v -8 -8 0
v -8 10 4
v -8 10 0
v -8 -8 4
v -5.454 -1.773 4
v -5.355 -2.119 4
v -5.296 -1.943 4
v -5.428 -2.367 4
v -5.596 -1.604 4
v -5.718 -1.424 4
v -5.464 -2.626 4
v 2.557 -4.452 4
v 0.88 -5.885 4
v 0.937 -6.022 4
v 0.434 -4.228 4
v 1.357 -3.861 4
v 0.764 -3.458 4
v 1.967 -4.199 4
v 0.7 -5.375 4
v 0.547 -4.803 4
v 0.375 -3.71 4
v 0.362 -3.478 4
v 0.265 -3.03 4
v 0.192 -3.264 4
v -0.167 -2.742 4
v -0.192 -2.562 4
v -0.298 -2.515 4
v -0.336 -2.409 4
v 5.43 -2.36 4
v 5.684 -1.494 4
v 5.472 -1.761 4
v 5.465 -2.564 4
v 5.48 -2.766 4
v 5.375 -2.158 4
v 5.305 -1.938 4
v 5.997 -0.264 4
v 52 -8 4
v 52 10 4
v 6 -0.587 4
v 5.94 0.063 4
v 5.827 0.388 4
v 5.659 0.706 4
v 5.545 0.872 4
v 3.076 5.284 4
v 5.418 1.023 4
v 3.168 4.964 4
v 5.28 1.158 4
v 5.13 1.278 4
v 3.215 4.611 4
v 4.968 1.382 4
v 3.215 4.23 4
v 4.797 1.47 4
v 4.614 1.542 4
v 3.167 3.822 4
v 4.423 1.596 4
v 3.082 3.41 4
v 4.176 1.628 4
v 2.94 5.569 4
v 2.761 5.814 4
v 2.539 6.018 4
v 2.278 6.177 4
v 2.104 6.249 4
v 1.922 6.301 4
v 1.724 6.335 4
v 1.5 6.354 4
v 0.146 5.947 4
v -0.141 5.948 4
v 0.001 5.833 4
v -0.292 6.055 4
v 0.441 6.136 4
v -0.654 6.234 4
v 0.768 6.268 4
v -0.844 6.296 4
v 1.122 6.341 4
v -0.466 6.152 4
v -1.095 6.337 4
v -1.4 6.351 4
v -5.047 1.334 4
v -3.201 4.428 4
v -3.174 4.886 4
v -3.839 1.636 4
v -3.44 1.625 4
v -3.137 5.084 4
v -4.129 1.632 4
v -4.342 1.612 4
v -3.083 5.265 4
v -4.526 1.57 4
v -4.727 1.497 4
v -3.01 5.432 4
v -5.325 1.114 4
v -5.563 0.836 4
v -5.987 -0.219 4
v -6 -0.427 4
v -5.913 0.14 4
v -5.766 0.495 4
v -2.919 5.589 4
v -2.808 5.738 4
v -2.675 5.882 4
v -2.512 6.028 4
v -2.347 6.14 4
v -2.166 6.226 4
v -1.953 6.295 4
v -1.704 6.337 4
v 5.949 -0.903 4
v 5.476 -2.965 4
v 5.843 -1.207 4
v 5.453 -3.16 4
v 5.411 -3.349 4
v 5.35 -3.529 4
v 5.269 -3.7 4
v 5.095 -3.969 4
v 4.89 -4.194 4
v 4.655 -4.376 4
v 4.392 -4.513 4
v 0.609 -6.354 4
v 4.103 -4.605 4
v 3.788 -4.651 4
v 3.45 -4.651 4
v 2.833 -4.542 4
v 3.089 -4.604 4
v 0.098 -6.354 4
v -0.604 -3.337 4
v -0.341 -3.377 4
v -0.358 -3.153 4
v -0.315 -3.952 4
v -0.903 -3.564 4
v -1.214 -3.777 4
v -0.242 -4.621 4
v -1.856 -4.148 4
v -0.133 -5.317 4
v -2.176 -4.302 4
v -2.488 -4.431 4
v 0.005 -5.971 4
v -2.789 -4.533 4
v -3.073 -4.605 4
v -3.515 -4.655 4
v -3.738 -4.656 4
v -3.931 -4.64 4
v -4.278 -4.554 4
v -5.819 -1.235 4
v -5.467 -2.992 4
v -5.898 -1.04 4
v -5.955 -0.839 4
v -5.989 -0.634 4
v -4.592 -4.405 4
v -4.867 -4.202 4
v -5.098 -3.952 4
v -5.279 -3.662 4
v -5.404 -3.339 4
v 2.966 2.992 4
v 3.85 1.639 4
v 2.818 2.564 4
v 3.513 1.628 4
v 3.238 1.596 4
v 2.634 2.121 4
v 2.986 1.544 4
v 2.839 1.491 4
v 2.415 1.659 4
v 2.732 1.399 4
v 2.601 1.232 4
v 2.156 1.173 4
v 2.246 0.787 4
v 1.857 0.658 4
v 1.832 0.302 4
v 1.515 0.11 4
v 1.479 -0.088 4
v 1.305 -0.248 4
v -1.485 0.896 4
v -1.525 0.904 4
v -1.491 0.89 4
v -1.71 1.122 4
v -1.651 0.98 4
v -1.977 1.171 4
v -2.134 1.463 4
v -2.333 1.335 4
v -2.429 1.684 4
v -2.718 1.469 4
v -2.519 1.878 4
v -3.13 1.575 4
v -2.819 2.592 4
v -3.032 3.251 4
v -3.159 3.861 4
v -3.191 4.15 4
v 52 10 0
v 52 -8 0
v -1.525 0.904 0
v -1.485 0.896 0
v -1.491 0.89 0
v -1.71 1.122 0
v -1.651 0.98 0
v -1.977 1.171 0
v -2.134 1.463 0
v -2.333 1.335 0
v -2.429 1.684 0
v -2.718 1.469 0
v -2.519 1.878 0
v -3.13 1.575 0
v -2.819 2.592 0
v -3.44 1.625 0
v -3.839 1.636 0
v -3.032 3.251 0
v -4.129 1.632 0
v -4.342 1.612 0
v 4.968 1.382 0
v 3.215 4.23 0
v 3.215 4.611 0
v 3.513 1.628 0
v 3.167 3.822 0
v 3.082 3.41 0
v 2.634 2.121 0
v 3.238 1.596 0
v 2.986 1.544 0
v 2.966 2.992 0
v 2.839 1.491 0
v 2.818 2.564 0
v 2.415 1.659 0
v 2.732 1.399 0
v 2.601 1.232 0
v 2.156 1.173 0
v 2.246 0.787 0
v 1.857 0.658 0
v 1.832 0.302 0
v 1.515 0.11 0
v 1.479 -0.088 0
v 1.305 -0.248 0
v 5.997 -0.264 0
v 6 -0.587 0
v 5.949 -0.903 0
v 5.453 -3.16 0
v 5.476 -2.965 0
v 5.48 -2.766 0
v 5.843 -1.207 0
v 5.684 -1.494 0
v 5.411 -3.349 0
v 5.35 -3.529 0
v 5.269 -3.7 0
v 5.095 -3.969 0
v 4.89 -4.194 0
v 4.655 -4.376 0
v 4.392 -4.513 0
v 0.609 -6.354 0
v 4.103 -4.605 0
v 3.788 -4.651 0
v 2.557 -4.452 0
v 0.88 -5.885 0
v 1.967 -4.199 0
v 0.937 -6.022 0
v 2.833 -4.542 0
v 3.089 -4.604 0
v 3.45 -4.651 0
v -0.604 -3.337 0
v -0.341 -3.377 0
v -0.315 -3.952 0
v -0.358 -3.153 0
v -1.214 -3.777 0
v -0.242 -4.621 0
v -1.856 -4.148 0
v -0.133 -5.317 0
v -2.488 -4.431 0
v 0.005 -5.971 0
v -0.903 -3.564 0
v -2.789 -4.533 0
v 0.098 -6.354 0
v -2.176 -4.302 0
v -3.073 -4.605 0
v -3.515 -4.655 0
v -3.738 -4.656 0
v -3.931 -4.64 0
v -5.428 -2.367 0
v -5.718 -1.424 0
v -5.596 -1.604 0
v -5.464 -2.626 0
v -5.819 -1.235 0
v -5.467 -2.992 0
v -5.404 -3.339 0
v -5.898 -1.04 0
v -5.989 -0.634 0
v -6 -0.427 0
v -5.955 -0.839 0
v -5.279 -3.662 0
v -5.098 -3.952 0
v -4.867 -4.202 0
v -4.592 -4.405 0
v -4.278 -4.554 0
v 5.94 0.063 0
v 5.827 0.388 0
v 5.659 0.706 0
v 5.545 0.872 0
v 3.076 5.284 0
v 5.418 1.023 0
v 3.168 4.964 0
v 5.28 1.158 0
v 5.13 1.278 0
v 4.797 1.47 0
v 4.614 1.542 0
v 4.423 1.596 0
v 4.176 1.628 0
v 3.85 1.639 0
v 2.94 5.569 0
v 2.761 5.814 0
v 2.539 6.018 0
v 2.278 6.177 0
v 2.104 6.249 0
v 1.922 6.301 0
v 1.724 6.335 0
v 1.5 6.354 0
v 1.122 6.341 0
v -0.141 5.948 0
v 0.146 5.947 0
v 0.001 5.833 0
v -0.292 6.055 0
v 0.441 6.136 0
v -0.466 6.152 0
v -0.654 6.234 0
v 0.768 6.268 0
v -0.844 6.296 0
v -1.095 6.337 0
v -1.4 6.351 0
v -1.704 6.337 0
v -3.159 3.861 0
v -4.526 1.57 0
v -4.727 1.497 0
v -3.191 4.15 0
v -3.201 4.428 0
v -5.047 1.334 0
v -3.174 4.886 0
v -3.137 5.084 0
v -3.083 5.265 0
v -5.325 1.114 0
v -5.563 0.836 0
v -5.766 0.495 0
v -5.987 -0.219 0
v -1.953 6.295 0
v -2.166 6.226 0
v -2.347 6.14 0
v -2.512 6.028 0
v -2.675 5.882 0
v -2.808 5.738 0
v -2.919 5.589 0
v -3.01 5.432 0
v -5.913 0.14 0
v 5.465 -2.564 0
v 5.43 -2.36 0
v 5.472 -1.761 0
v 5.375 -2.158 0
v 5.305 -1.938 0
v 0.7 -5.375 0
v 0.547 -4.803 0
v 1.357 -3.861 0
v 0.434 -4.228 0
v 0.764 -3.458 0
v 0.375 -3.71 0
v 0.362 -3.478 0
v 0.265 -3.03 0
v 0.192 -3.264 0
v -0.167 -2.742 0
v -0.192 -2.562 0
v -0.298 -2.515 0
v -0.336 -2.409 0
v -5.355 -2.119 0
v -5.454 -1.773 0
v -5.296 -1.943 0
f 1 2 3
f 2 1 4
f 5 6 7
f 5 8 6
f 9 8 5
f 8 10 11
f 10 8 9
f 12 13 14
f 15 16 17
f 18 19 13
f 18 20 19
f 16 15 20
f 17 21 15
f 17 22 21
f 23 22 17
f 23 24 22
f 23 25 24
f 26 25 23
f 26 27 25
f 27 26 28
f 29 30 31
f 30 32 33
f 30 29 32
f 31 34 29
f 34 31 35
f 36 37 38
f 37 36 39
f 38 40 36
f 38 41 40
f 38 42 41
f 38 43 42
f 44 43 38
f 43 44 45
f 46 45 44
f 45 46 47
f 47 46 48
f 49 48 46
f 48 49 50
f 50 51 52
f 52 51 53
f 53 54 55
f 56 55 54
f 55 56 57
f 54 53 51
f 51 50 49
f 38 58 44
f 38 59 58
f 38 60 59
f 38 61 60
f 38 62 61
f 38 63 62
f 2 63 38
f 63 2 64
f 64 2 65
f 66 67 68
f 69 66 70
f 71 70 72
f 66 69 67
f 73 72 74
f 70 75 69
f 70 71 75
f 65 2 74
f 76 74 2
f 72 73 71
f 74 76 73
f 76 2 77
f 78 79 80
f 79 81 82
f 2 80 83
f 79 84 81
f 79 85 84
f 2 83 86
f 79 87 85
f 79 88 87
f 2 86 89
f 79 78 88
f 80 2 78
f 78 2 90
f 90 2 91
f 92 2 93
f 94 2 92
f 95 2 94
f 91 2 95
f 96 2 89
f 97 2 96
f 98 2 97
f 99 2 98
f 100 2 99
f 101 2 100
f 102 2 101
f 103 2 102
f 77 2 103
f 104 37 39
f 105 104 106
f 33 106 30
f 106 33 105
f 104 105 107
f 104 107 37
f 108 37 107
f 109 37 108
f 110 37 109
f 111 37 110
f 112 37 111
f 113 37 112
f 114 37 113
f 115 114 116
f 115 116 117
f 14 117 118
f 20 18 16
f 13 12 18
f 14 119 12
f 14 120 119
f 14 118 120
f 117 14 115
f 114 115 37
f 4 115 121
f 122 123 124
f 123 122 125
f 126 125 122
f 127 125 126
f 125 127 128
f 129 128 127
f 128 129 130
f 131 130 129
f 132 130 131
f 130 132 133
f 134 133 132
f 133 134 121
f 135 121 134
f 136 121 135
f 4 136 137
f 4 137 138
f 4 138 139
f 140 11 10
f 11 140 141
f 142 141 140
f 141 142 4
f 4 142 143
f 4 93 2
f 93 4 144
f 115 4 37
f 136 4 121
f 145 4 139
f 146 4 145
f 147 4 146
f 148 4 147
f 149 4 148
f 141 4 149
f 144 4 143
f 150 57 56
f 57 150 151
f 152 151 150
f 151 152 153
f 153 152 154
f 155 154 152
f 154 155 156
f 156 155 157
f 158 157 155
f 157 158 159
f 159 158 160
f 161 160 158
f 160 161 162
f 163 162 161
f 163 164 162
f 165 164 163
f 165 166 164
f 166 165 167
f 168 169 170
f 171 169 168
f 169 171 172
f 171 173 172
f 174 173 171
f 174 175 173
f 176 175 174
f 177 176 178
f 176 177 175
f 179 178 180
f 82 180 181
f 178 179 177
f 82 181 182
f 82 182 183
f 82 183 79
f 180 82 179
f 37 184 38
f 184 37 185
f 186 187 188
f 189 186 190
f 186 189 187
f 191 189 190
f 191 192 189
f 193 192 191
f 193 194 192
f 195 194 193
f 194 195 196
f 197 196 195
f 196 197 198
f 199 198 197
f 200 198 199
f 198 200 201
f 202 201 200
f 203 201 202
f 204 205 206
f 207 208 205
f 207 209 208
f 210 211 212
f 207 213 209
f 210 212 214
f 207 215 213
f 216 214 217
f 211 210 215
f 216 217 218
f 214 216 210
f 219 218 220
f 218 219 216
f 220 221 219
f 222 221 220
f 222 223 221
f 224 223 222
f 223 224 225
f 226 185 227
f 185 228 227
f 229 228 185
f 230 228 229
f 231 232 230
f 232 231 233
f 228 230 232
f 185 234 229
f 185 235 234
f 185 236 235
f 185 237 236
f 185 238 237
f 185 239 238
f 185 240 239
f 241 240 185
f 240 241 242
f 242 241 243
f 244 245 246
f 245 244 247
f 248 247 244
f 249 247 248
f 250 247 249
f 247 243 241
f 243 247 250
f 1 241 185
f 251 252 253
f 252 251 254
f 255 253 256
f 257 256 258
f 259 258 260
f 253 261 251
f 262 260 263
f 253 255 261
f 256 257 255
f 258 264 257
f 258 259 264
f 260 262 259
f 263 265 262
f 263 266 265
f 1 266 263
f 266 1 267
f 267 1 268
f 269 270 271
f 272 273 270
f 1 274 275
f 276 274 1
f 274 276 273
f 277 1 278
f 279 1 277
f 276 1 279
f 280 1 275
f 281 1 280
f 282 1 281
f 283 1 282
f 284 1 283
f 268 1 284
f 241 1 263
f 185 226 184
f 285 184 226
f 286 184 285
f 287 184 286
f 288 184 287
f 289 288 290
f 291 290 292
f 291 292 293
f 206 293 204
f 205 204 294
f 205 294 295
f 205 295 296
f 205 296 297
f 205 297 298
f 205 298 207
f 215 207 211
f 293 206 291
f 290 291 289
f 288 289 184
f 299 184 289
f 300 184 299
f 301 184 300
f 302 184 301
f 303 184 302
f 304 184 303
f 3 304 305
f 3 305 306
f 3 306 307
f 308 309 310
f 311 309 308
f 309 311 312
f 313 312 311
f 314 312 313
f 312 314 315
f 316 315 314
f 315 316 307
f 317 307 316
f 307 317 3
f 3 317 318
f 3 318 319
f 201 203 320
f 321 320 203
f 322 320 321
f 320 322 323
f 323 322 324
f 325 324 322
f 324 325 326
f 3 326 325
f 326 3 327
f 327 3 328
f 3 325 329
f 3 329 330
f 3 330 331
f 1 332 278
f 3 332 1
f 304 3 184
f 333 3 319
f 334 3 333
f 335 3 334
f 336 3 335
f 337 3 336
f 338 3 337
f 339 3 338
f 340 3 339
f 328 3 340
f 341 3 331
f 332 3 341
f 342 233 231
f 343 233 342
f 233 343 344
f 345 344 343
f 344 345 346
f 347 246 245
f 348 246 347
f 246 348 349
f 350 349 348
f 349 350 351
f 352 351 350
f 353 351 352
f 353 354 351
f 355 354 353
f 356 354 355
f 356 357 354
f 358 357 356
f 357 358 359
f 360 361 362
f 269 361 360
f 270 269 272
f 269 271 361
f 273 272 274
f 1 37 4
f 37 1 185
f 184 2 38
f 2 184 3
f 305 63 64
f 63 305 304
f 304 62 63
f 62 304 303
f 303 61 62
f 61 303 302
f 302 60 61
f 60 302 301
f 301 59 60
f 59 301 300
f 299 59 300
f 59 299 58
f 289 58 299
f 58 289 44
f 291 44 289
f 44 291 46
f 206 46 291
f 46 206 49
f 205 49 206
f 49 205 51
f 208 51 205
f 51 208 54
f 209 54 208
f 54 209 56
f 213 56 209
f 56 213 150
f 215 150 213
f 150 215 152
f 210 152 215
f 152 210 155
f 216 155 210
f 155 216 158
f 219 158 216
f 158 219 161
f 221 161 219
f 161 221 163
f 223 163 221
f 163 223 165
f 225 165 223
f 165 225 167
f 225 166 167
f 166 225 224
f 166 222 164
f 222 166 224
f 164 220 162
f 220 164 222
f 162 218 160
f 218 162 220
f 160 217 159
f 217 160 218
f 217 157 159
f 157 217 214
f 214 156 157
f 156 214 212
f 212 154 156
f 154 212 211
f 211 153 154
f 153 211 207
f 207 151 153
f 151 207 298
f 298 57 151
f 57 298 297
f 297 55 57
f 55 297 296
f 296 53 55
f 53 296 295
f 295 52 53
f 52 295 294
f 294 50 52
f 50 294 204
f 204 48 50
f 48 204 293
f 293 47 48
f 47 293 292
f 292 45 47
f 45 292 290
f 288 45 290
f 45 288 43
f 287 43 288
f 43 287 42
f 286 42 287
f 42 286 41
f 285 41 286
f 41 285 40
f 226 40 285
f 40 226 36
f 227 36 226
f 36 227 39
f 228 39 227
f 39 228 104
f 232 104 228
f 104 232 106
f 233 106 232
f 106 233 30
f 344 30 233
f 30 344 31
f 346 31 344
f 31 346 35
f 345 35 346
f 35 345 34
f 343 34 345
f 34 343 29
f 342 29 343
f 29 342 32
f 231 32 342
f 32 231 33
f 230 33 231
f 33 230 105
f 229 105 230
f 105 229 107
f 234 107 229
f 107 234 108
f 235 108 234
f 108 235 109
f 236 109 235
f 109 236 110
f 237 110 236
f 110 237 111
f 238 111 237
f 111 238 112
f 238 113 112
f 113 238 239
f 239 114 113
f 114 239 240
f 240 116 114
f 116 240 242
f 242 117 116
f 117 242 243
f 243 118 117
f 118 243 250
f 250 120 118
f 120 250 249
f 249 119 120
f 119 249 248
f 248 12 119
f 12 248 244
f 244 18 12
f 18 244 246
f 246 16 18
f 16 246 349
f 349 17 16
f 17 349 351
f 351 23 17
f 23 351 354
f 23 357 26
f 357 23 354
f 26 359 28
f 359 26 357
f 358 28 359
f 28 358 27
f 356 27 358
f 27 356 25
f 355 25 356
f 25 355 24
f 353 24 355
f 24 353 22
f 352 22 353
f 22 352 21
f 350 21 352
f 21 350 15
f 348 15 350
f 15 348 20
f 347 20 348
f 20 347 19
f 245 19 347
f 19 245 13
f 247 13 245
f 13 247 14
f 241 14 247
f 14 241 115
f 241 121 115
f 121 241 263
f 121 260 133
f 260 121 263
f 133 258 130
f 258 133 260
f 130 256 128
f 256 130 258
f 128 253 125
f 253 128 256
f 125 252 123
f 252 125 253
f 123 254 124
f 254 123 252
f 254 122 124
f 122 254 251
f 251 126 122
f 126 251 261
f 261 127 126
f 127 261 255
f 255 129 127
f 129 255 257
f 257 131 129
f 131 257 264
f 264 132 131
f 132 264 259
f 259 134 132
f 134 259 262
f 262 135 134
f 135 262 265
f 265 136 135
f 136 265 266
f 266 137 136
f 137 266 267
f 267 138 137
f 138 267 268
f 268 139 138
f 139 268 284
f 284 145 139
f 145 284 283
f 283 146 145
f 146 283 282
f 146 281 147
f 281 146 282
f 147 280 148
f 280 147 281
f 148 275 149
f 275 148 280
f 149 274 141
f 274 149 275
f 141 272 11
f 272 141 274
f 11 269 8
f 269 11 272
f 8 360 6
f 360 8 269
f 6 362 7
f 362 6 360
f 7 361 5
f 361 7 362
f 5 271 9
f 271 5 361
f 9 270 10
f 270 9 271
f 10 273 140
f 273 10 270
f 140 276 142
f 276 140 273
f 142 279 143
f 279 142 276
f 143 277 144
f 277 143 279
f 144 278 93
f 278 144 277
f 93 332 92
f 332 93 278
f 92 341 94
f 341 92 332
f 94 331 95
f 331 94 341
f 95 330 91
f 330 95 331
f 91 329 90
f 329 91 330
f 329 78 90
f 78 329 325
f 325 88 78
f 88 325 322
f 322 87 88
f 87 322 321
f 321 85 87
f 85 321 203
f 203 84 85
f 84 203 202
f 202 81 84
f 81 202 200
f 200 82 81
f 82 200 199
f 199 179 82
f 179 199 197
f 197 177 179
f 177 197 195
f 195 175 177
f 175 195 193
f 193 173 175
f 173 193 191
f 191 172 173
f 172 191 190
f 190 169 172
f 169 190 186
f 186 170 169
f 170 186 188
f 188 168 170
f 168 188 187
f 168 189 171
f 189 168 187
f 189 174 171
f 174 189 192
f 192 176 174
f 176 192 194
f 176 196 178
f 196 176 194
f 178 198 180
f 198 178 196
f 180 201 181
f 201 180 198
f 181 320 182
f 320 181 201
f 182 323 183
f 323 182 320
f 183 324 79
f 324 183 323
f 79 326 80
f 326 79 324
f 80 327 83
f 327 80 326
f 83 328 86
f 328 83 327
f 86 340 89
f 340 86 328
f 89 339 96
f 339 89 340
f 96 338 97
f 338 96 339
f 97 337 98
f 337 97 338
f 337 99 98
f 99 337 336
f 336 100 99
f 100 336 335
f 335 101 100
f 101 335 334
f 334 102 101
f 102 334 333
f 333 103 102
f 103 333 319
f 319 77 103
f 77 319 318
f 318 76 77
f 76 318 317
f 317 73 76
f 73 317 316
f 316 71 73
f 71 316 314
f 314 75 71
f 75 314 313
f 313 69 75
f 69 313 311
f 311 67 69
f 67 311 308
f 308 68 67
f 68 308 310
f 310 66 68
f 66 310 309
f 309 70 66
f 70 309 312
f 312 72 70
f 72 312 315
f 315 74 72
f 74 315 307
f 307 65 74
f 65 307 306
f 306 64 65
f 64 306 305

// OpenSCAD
 
// Module names are of the form poly_<inkscape-path-id>().
// As a result you can associate a polygon in this OpenSCAD program with the
//  corresponding SVG element in the Inkscape document by looking for 
//  the XML element with the attribute id="inkscape-path-id".

// Paths have their own variables so they can be imported and used 
//  in polygon(points) structures in other programs.
// The NN_points is the list of all polygon XY vertices. 
// There may be an NN_paths variable as well. If it exists then it 
//  defines the nested paths. Both must be used in the 
//  polygon(points, paths) variant of the command.

profile_scale = 25.4/90; //made in inkscape in mm

// helper functions to determine the X,Y dimensions of the profiles
function min_x(shape_points) = min([ for (x = shape_points) min(x[0])]);
function max_x(shape_points) = max([ for (x = shape_points) max(x[0])]);
function min_y(shape_points) = min([ for (x = shape_points) min(x[1])]);
function max_y(shape_points) = max([ for (x = shape_points) max(x[1])]);

height = 8;
width = 10;


path3748_0_points = [[0.077872,95.503570],[-2.122076,85.049308],[-3.873795,73.919759],[-5.031635,63.208250],[-5.449948,54.008110],[-5.724268,50.431320],[-9.656184,53.377010],[-14.437322,57.011760],[-19.421141,60.413117],[-29.680960,66.353541],[-34.799027,68.811553],[-39.803911,70.874061],[-44.616645,72.500536],[-49.158263,73.650450],[-56.220931,74.455018],[-59.790633,74.474729],[-62.884265,74.218630],[-68.434658,72.837341],[-73.454553,70.464186],[-77.854039,67.217291],[-81.543207,63.214781],[-84.432147,58.574784],[-86.430948,53.415424],[-87.449700,47.854828],[-87.398494,42.011120],[-86.823148,37.857356],[-85.650612,33.894190],[-84.708009,31.080750],[-87.232812,28.366280],[-89.515706,25.648534],[-91.467909,22.770045],[-93.080933,19.755555],[-94.346291,16.629805],[-95.255495,13.417535],[-95.800054,10.143485],[-95.971483,6.832397],[-95.761291,3.509010],[-94.583483,-2.234581],[-92.233186,-7.915150],[-88.983095,-13.371513],[-85.168486,-17.824042],[-80.728933,-21.331010],[-75.604009,-23.950688],[-72.400324,-25.106059],[-69.458433,-25.784388],[-66.041134,-26.101019],[-61.411223,-26.171298],[-55.026728,-25.987217],[-50.072660,-25.184653],[-43.482440,-23.504344],[-37.318628,-21.350890],[-31.615068,-18.737875],[-26.405606,-15.678882],[-24.386596,-14.464297],[-23.851197,-14.241871],[-23.748002,-14.334757],[-27.354107,-17.943350],[-34.127160,-23.405029],[-38.847101,-26.934642],[-40.288737,-30.043616],[-45.089037,-41.454261],[-48.493116,-51.995923],[-50.524642,-61.756987],[-51.033094,-66.372417],[-51.207282,-70.825842],[-50.763032,-78.153720],[-50.169859,-81.316552],[-49.305603,-84.210791],[-48.152475,-86.885547],[-46.692688,-89.389927],[-44.908451,-91.773041],[-42.781977,-94.083997],[-40.175272,-96.422590],[-37.540768,-98.213421],[-34.640380,-99.592869],[-31.236023,-100.697313],[-27.253236,-101.358691],[-22.390205,-101.579499],[-17.515244,-101.359665],[-13.496664,-100.699113],[-10.458586,-99.708958],[-7.457506,-98.396132],[-4.665861,-96.845862],[-2.256088,-95.143377],[0.023362,-93.297570],[2.340462,-95.118450],[7.053441,-98.147797],[12.282505,-100.257636],[17.953865,-101.425777],[23.993732,-101.630030],[27.577879,-101.337403],[30.747863,-100.790524],[33.649746,-99.956161],[36.429592,-98.801078],[40.617536,-96.263010],[44.155599,-93.002901],[47.024530,-89.071714],[49.205077,-84.520412],[50.677989,-79.399956],[51.424016,-73.761311],[51.423907,-67.655439],[50.658412,-61.133302],[49.294627,-54.542032],[47.441512,-47.859419],[45.066578,-41.012479],[42.137335,-33.928226],[38.621294,-26.533676],[34.485964,-18.755845],[29.698857,-10.521748],[24.227482,-1.758400],[20.868462,3.972080],[23.659278,1.413635],[29.305383,-4.823834],[35.917872,-12.583528],[41.607842,-19.708650],[43.694423,-22.378479],[45.402837,-23.847528],[47.759671,-24.702719],[51.791512,-25.530973],[56.198358,-26.046945],[61.575432,-26.219391],[66.798103,-26.048179],[70.741742,-25.533173],[73.809744,-24.659685],[76.721652,-23.517074],[79.470395,-22.110430],[82.048902,-20.444844],[84.450101,-18.525406],[86.666921,-16.357207],[88.692292,-13.945336],[90.519142,-11.294884],[93.204853,-6.199010],[95.005130,-1.004507],[95.925498,4.215877],[95.971483,9.389391],[95.148610,14.443286],[93.462405,19.304812],[90.918393,23.901220],[87.522102,28.159760],[84.847892,31.005290],[85.970702,34.510540],[86.846450,37.752052],[87.407889,41.004717],[87.656947,44.240345],[87.595553,47.430741],[87.225633,50.547715],[86.549116,53.563075],[85.567930,56.448627],[84.284002,59.176180],[81.500497,63.480330],[78.218854,67.091123],[74.463109,69.998590],[70.257297,72.192764],[65.625452,73.663677],[60.591611,74.401361],[55.179809,74.395848],[49.414082,73.637170],[45.309328,72.649029],[40.901110,71.216193],[31.469694,67.161921],[21.710667,61.765317],[12.214862,55.317340],[4.233233,48.472864],[-3.069548,40.978580],[-5.380138,38.527580],[-4.762967,40.233446],[-2.669768,43.856439],[3.073392,52.207340],[5.783672,55.636990],[5.996212,59.339660],[6.935081,67.634341],[8.741514,76.826501],[11.196431,85.973311],[14.080752,94.131940],[14.984232,96.326500],[12.365882,98.978250],[9.747532,101.630030],[5.658952,101.630030],[1.570352,101.630030],[0.078002,95.503540],[0.077872,95.503570]];

module poly_path3748(h, w, res=4)  {
  scale([profile_scale, -profile_scale, 1])
  union()  {
    linear_extrude(height=h)
      polygon(path3748_0_points);
  }
}

// The shapes

//difference(){

    difference(){
        translate([-8,-8,0])
            cube(size = [60, 18, 4], center=false) ;
        resize([12, 0, 5], auto=[true, true, false])
            poly_path3748(height, width);
    }
//    translate([8, -4, 2])
//        linear_extrude(8)
//            text("Ronja");
// }
